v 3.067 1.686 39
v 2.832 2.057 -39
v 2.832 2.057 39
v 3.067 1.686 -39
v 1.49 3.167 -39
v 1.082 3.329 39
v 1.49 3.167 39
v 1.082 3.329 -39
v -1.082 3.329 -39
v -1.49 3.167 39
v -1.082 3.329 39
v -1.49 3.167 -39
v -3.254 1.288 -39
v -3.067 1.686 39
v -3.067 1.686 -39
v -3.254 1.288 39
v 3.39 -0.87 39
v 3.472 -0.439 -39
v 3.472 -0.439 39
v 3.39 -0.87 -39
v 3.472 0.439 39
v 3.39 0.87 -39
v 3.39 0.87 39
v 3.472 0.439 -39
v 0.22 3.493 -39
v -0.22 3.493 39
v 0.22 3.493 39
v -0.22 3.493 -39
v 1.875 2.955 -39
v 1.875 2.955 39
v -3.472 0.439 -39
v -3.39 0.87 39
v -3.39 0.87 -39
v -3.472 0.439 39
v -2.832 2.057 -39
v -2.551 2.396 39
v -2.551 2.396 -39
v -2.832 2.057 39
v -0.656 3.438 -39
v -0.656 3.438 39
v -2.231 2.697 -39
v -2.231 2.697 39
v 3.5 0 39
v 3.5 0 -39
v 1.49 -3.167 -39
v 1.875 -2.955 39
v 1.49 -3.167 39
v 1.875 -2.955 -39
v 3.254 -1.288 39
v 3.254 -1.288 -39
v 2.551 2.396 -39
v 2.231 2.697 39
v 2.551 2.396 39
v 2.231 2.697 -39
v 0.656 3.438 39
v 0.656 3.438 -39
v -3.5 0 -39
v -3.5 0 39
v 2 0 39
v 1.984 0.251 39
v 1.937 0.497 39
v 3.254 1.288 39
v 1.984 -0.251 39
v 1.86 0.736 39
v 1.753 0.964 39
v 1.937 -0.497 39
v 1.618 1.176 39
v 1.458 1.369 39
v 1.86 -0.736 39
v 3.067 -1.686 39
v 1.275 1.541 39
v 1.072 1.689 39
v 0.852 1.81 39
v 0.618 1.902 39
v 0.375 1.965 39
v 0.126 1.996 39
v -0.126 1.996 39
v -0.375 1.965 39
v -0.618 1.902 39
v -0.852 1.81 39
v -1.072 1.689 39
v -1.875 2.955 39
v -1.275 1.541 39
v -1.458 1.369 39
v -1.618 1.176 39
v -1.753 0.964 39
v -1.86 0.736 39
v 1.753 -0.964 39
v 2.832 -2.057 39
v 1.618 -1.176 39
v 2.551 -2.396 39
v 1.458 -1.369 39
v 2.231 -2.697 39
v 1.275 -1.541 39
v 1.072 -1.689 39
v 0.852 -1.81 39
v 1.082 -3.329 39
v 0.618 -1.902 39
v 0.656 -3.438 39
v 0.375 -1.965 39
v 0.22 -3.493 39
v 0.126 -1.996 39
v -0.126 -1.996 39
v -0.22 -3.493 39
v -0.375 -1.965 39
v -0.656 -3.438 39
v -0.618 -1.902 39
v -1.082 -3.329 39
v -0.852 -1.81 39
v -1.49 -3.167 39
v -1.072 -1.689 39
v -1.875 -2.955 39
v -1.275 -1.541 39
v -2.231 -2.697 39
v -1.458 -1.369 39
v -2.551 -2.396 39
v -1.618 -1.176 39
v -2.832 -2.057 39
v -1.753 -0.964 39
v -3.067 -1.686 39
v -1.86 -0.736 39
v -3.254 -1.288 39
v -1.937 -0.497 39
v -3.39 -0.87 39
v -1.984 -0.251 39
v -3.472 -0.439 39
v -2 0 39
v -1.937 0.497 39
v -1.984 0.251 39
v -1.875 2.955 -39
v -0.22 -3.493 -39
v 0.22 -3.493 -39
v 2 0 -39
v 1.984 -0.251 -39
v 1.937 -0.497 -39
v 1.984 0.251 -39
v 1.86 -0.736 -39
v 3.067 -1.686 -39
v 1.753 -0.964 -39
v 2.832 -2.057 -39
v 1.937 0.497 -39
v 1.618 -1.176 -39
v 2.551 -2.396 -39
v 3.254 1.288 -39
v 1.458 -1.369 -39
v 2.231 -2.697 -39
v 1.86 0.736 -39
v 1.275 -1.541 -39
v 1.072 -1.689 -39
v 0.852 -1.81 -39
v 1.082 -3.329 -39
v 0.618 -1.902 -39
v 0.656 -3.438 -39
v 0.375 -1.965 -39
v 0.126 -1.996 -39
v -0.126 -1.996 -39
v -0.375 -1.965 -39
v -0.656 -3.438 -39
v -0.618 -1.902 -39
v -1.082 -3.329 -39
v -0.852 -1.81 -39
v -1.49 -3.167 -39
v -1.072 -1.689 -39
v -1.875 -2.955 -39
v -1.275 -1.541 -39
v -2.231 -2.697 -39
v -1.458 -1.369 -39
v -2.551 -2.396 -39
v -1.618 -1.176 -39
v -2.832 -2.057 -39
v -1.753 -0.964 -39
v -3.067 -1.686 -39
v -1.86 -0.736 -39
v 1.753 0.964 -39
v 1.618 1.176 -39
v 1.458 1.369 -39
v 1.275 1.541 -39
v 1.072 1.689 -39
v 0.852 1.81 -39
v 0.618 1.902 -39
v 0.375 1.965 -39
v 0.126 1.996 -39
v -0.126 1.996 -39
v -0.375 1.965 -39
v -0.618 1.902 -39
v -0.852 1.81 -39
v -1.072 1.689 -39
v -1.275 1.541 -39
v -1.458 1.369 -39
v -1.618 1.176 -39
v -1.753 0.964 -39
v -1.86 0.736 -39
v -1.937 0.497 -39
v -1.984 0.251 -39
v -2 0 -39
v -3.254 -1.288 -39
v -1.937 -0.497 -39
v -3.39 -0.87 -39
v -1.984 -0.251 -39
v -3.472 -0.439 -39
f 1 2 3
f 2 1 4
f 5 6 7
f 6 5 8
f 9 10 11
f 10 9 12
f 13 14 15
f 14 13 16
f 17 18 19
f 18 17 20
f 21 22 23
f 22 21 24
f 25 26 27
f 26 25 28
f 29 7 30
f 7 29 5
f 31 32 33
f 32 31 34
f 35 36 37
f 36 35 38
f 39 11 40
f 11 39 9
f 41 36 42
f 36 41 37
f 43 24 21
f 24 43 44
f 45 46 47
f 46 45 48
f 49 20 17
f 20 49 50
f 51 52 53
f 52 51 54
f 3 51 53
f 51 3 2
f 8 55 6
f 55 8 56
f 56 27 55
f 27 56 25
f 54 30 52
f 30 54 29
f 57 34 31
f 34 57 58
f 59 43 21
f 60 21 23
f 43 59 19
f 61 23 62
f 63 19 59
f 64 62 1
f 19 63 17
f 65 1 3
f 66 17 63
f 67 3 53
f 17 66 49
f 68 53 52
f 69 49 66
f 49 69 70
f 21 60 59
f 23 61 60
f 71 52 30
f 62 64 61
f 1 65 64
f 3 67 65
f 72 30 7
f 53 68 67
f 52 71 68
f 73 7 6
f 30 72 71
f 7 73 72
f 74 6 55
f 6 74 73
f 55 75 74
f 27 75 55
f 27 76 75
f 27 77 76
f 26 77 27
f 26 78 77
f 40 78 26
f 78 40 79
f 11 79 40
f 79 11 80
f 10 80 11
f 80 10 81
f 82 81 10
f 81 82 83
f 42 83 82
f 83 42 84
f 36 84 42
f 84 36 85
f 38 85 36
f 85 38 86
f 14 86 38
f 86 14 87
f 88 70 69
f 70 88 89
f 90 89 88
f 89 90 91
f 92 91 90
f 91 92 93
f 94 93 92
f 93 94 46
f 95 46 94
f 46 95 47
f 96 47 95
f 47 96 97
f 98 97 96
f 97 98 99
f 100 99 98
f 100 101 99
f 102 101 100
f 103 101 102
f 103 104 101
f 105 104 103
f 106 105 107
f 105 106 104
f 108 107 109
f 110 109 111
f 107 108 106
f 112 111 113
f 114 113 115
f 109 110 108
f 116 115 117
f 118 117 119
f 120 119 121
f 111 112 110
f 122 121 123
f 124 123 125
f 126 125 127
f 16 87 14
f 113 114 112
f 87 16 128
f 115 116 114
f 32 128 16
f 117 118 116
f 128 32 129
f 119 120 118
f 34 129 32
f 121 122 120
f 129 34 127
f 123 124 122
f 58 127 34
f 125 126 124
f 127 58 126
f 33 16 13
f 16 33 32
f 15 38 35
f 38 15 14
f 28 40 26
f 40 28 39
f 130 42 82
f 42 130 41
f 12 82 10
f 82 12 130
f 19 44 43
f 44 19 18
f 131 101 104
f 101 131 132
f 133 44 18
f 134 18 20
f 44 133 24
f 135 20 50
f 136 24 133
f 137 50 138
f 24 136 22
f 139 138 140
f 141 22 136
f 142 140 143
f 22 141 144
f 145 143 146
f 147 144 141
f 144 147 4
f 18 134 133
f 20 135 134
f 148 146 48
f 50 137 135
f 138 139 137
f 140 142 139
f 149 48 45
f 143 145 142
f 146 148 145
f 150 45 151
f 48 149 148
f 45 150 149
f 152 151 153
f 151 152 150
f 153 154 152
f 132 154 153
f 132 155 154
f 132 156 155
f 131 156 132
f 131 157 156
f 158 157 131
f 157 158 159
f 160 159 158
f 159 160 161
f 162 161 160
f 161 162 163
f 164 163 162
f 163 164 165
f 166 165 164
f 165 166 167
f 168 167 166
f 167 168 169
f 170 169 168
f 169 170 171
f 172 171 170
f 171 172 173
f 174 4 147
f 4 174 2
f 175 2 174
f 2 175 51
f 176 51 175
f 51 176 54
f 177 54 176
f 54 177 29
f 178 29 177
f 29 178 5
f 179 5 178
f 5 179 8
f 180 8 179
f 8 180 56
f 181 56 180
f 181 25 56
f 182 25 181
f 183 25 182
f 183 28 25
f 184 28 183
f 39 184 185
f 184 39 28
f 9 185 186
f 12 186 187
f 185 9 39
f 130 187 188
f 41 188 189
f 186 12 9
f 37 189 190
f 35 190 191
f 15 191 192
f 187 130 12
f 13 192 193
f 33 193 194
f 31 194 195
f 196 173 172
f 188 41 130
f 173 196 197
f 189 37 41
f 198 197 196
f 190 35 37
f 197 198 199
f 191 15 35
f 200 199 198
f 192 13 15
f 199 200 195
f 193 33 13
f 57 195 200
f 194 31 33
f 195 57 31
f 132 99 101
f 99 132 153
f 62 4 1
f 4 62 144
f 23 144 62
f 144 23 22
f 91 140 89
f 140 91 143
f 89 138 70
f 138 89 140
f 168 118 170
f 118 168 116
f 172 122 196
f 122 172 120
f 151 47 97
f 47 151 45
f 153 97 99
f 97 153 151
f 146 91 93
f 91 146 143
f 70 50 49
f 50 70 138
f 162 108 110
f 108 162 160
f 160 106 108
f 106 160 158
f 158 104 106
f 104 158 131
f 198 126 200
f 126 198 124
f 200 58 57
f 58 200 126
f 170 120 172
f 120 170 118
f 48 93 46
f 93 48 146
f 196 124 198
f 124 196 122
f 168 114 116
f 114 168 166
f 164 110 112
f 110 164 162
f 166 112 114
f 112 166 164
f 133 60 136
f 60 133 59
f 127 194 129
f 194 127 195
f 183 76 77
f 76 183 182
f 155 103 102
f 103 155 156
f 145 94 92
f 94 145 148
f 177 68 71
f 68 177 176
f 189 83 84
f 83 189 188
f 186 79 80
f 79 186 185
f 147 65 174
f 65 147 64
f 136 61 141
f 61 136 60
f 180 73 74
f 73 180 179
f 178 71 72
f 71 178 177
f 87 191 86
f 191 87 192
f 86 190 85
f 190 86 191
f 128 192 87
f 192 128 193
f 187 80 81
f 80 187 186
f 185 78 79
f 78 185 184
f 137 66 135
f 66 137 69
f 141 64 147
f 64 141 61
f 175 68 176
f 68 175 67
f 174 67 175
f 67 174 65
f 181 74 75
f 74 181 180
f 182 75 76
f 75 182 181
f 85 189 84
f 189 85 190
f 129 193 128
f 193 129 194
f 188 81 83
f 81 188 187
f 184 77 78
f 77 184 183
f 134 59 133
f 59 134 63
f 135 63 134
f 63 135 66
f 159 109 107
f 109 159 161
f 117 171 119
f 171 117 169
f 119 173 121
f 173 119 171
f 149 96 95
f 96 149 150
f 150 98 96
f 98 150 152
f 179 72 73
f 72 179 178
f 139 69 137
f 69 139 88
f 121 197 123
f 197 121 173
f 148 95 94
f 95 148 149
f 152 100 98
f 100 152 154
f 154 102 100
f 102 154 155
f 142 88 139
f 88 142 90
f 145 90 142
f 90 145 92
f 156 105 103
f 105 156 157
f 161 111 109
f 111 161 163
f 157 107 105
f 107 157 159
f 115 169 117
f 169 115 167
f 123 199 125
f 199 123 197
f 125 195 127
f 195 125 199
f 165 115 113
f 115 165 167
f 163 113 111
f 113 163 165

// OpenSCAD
$fn = 50;


difference() {
	union() {
		translate(v = [0, 0, -39.0000000000]) {
			cylinder(h = 78, r = 3.5000000000);
		}
	}
	union() {
		translate(v = [0, 0, -100.0000000000]) {
			cylinder(h = 200, r = 2);
		}
	}
}
